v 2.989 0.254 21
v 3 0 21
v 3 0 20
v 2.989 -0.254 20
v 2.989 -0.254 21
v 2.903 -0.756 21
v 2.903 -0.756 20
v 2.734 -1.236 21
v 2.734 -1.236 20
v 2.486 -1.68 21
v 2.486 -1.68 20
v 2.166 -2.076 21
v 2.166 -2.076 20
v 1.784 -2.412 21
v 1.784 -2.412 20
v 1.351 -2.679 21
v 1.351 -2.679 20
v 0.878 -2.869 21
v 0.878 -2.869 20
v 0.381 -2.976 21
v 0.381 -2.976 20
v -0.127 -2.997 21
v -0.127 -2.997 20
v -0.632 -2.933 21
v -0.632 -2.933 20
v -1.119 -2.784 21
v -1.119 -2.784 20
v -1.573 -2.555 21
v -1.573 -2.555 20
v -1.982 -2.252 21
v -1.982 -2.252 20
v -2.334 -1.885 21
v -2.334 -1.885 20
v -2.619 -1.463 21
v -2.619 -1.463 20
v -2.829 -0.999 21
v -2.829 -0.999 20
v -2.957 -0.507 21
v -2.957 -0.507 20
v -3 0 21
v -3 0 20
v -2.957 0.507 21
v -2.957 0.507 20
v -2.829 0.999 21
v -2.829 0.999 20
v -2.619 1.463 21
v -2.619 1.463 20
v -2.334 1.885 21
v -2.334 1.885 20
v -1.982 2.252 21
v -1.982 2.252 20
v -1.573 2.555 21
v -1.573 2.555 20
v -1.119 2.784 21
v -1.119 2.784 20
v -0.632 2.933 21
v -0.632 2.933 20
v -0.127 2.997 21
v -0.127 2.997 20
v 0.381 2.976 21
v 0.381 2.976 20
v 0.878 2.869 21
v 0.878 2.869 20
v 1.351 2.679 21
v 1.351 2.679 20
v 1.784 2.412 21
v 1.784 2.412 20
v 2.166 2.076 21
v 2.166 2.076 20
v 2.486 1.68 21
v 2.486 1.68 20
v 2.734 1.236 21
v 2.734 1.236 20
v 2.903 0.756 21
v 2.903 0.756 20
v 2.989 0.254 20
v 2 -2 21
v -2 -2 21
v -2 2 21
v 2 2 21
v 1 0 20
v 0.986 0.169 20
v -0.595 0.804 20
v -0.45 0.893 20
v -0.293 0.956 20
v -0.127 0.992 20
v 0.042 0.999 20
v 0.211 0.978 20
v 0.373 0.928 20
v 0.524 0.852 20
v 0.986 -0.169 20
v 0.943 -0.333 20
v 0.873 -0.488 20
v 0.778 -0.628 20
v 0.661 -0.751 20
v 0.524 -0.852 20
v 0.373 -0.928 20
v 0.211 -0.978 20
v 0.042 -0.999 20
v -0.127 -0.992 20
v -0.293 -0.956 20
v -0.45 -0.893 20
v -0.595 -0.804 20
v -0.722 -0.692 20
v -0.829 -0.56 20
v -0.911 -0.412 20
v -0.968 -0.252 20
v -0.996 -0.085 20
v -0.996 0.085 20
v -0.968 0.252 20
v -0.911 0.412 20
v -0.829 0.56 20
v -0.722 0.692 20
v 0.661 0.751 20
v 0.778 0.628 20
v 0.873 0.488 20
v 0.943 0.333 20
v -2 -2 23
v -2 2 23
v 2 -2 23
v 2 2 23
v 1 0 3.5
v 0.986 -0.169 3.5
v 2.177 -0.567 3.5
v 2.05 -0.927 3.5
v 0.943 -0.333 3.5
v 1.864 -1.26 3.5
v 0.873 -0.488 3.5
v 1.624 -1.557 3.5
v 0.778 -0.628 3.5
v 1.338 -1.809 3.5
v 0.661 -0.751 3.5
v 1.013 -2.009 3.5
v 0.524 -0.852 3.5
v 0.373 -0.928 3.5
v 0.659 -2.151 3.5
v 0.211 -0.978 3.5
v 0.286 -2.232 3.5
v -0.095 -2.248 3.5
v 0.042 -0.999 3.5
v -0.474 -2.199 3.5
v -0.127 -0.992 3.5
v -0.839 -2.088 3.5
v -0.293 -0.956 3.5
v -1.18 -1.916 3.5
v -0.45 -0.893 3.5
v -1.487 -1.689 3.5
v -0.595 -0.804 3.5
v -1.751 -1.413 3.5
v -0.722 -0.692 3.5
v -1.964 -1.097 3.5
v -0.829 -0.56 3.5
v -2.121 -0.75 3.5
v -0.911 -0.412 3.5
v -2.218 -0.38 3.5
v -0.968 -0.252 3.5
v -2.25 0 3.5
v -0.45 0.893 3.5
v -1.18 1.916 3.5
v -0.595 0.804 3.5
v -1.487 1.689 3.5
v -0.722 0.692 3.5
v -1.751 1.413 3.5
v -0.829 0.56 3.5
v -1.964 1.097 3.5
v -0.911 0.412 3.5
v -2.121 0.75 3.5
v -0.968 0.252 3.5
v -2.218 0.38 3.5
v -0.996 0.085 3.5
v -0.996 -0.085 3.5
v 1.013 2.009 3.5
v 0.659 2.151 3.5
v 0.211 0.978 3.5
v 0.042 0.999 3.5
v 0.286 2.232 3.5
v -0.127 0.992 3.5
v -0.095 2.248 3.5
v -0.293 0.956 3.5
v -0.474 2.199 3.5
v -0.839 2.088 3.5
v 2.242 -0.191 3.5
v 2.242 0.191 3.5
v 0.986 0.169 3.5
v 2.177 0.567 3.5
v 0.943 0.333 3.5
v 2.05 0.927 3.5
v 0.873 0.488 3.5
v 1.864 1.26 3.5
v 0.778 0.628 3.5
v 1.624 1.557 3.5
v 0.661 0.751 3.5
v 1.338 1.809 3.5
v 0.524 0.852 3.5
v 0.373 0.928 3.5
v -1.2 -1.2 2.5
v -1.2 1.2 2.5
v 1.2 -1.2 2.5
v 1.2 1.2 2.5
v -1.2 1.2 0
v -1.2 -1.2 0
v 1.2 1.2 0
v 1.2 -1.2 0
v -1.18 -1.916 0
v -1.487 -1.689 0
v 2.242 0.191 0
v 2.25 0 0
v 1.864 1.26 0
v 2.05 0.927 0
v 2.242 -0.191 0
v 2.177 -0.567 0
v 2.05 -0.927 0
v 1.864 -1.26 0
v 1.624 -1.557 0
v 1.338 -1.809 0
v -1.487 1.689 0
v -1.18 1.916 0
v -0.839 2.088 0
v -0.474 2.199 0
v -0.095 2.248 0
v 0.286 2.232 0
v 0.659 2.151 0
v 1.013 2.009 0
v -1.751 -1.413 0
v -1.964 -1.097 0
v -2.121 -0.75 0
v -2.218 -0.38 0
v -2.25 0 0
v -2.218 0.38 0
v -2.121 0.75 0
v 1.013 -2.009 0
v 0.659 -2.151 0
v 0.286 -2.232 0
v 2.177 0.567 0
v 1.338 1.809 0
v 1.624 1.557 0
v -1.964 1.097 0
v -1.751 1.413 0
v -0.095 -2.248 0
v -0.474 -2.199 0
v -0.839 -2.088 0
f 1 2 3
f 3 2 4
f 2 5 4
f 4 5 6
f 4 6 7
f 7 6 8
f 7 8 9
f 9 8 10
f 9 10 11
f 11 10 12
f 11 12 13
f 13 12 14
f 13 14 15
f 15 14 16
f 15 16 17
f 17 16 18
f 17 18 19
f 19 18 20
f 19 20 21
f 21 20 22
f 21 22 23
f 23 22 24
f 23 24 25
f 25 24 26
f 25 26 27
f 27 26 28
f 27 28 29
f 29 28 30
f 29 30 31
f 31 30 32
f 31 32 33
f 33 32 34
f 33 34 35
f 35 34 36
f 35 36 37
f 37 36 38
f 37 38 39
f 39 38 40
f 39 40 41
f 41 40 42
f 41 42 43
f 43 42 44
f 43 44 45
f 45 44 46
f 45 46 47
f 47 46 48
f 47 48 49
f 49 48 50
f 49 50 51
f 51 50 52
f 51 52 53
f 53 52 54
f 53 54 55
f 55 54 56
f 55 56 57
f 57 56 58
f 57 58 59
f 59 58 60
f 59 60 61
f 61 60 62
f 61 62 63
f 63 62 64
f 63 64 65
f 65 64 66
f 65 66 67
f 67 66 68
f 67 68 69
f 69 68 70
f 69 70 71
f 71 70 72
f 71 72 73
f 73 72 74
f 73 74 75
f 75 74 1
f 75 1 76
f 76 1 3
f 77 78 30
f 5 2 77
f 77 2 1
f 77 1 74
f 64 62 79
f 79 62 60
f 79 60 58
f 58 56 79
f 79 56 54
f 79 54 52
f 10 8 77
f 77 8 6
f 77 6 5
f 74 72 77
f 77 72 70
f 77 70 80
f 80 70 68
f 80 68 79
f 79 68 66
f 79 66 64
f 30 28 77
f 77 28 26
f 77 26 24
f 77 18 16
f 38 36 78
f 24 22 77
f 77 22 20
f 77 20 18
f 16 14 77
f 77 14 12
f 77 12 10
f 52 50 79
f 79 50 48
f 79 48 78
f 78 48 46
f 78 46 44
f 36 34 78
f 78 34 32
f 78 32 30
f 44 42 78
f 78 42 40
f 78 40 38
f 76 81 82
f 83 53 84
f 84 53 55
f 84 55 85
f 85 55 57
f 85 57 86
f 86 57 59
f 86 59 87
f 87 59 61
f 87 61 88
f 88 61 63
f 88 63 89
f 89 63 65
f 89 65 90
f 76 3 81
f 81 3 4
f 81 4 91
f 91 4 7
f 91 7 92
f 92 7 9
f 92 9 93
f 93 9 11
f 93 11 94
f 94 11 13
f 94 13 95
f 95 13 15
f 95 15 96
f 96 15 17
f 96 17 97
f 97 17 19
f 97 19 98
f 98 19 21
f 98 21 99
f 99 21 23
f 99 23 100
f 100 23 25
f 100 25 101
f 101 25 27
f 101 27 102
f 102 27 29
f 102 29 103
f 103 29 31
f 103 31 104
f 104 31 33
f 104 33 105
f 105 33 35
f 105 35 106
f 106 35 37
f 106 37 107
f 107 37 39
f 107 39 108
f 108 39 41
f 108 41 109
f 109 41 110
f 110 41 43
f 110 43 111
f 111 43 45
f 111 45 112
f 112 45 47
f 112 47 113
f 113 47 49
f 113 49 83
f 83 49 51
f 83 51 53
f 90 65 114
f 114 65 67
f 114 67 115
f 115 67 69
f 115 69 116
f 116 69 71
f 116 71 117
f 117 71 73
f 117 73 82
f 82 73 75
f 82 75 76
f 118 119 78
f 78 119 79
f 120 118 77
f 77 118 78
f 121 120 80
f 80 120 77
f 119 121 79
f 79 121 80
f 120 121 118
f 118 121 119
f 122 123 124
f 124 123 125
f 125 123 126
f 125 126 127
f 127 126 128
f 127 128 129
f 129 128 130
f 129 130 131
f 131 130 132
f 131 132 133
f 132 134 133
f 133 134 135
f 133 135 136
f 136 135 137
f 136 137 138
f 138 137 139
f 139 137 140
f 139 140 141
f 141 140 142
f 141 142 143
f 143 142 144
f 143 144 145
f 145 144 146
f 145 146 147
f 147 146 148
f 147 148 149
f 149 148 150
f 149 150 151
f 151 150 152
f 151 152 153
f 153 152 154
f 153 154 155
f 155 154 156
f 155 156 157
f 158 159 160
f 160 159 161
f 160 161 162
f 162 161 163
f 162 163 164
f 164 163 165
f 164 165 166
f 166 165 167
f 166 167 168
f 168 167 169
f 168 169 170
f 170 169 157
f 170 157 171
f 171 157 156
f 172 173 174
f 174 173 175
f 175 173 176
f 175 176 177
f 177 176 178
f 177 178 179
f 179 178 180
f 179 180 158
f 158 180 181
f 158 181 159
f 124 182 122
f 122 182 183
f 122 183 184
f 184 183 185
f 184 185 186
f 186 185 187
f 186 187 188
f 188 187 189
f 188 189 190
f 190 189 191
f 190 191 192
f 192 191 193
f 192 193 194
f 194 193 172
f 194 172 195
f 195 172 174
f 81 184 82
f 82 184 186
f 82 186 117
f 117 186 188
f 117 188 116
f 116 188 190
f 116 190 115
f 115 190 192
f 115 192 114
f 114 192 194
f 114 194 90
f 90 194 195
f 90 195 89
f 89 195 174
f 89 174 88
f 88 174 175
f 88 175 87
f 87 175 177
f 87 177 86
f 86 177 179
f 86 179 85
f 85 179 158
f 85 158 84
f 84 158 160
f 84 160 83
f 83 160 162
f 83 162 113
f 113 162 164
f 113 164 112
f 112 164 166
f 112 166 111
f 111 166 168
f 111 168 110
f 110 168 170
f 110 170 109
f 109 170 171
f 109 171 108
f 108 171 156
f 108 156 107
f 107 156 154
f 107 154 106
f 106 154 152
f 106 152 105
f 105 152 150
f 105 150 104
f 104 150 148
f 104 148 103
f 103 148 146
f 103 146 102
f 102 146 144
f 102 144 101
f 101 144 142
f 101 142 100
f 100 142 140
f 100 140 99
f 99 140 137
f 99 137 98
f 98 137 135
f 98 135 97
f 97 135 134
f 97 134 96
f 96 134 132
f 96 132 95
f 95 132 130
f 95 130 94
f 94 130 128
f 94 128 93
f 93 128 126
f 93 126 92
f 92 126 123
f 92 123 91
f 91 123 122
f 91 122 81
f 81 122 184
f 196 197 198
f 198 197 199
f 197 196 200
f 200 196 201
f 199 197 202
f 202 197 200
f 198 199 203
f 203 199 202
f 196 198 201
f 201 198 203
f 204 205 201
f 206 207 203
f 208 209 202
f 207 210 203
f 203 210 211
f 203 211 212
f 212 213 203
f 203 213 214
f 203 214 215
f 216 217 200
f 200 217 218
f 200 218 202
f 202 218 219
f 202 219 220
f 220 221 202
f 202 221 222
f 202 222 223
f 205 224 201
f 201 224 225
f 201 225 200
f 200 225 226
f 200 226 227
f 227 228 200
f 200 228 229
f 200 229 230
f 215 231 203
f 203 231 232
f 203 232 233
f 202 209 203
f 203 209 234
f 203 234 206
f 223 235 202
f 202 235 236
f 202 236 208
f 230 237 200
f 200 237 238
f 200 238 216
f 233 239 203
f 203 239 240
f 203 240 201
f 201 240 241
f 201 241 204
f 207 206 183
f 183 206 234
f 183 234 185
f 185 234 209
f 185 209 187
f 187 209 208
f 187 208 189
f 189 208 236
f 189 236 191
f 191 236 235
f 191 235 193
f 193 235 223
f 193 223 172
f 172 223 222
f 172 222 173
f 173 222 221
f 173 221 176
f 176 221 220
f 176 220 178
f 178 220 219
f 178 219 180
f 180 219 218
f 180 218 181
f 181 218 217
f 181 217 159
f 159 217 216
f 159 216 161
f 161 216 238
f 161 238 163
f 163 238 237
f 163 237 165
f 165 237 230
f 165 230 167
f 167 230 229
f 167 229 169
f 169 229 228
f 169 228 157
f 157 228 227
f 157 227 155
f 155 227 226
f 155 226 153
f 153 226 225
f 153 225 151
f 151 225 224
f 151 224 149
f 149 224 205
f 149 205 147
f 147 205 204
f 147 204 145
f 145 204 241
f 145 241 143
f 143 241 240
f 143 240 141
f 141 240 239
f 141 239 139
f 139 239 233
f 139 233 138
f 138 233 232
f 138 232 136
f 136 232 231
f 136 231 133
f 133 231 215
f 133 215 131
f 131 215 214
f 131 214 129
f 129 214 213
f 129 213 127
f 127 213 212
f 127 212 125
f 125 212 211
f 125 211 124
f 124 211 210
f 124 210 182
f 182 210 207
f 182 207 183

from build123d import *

# Parameters (mm, degrees)
SKETCH_1_R          = 2.25
EXTRUDE_2_DEPTH     = 20
SKETCH_7_W          = 2.4
SKETCH_7_H          = 2.4
CUT_EXTRUDE_3_DEPTH = 2.5
SKETCH_9_R          = 3
EXTRUDE_4_DEPTH     = 1
SKETCH_10_W         = 4
SKETCH_10_H         = 4
EXTRUDE_5_DEPTH     = 2
CUT_EXTRUDE_START   = -20
SKETCH_12_OUTSIDE_W = 12.904
SKETCH_12_OUTSIDE_H = 12.904
SKETCH_12_OUTSIDE_R = 1
CUT_EXTRUDE_4_DEPTH = 16.5


with BuildPart() as part:
    # 草图1 → 凸台-拉伸2 (new body)
    with BuildSketch(Plane.XY):
        Circle(SKETCH_1_R)
    extrude(amount=EXTRUDE_2_DEPTH)

    # 草图7 → 切除-拉伸3 (cut)
    with BuildSketch(Plane.XY):
        Rectangle(SKETCH_7_W, SKETCH_7_H)
    extrude(amount=CUT_EXTRUDE_3_DEPTH, mode=Mode.SUBTRACT)

    # 草图9 → 凸台-拉伸4 (add)
    with BuildSketch(Plane.XY.offset(20)):
        Circle(SKETCH_9_R)
    extrude(amount=EXTRUDE_4_DEPTH)

    # 草图10 → 凸台-拉伸5 (add)
    with BuildSketch(Plane.XY.offset(21)):
        Rectangle(SKETCH_10_W, SKETCH_10_H)
    extrude(amount=EXTRUDE_5_DEPTH)

    # 草图12 outside → 切除-拉伸4 (cut)
    with BuildSketch(Plane(origin=(0, 0, 0), x_dir=(-1, 0, 0), z_dir=(0, 0, -1)).offset(CUT_EXTRUDE_START)):
        Rectangle(SKETCH_12_OUTSIDE_W, SKETCH_12_OUTSIDE_H)
        Circle(SKETCH_12_OUTSIDE_R, mode=Mode.SUBTRACT)
    extrude(amount=CUT_EXTRUDE_4_DEPTH, mode=Mode.SUBTRACT)


solid = part.part
